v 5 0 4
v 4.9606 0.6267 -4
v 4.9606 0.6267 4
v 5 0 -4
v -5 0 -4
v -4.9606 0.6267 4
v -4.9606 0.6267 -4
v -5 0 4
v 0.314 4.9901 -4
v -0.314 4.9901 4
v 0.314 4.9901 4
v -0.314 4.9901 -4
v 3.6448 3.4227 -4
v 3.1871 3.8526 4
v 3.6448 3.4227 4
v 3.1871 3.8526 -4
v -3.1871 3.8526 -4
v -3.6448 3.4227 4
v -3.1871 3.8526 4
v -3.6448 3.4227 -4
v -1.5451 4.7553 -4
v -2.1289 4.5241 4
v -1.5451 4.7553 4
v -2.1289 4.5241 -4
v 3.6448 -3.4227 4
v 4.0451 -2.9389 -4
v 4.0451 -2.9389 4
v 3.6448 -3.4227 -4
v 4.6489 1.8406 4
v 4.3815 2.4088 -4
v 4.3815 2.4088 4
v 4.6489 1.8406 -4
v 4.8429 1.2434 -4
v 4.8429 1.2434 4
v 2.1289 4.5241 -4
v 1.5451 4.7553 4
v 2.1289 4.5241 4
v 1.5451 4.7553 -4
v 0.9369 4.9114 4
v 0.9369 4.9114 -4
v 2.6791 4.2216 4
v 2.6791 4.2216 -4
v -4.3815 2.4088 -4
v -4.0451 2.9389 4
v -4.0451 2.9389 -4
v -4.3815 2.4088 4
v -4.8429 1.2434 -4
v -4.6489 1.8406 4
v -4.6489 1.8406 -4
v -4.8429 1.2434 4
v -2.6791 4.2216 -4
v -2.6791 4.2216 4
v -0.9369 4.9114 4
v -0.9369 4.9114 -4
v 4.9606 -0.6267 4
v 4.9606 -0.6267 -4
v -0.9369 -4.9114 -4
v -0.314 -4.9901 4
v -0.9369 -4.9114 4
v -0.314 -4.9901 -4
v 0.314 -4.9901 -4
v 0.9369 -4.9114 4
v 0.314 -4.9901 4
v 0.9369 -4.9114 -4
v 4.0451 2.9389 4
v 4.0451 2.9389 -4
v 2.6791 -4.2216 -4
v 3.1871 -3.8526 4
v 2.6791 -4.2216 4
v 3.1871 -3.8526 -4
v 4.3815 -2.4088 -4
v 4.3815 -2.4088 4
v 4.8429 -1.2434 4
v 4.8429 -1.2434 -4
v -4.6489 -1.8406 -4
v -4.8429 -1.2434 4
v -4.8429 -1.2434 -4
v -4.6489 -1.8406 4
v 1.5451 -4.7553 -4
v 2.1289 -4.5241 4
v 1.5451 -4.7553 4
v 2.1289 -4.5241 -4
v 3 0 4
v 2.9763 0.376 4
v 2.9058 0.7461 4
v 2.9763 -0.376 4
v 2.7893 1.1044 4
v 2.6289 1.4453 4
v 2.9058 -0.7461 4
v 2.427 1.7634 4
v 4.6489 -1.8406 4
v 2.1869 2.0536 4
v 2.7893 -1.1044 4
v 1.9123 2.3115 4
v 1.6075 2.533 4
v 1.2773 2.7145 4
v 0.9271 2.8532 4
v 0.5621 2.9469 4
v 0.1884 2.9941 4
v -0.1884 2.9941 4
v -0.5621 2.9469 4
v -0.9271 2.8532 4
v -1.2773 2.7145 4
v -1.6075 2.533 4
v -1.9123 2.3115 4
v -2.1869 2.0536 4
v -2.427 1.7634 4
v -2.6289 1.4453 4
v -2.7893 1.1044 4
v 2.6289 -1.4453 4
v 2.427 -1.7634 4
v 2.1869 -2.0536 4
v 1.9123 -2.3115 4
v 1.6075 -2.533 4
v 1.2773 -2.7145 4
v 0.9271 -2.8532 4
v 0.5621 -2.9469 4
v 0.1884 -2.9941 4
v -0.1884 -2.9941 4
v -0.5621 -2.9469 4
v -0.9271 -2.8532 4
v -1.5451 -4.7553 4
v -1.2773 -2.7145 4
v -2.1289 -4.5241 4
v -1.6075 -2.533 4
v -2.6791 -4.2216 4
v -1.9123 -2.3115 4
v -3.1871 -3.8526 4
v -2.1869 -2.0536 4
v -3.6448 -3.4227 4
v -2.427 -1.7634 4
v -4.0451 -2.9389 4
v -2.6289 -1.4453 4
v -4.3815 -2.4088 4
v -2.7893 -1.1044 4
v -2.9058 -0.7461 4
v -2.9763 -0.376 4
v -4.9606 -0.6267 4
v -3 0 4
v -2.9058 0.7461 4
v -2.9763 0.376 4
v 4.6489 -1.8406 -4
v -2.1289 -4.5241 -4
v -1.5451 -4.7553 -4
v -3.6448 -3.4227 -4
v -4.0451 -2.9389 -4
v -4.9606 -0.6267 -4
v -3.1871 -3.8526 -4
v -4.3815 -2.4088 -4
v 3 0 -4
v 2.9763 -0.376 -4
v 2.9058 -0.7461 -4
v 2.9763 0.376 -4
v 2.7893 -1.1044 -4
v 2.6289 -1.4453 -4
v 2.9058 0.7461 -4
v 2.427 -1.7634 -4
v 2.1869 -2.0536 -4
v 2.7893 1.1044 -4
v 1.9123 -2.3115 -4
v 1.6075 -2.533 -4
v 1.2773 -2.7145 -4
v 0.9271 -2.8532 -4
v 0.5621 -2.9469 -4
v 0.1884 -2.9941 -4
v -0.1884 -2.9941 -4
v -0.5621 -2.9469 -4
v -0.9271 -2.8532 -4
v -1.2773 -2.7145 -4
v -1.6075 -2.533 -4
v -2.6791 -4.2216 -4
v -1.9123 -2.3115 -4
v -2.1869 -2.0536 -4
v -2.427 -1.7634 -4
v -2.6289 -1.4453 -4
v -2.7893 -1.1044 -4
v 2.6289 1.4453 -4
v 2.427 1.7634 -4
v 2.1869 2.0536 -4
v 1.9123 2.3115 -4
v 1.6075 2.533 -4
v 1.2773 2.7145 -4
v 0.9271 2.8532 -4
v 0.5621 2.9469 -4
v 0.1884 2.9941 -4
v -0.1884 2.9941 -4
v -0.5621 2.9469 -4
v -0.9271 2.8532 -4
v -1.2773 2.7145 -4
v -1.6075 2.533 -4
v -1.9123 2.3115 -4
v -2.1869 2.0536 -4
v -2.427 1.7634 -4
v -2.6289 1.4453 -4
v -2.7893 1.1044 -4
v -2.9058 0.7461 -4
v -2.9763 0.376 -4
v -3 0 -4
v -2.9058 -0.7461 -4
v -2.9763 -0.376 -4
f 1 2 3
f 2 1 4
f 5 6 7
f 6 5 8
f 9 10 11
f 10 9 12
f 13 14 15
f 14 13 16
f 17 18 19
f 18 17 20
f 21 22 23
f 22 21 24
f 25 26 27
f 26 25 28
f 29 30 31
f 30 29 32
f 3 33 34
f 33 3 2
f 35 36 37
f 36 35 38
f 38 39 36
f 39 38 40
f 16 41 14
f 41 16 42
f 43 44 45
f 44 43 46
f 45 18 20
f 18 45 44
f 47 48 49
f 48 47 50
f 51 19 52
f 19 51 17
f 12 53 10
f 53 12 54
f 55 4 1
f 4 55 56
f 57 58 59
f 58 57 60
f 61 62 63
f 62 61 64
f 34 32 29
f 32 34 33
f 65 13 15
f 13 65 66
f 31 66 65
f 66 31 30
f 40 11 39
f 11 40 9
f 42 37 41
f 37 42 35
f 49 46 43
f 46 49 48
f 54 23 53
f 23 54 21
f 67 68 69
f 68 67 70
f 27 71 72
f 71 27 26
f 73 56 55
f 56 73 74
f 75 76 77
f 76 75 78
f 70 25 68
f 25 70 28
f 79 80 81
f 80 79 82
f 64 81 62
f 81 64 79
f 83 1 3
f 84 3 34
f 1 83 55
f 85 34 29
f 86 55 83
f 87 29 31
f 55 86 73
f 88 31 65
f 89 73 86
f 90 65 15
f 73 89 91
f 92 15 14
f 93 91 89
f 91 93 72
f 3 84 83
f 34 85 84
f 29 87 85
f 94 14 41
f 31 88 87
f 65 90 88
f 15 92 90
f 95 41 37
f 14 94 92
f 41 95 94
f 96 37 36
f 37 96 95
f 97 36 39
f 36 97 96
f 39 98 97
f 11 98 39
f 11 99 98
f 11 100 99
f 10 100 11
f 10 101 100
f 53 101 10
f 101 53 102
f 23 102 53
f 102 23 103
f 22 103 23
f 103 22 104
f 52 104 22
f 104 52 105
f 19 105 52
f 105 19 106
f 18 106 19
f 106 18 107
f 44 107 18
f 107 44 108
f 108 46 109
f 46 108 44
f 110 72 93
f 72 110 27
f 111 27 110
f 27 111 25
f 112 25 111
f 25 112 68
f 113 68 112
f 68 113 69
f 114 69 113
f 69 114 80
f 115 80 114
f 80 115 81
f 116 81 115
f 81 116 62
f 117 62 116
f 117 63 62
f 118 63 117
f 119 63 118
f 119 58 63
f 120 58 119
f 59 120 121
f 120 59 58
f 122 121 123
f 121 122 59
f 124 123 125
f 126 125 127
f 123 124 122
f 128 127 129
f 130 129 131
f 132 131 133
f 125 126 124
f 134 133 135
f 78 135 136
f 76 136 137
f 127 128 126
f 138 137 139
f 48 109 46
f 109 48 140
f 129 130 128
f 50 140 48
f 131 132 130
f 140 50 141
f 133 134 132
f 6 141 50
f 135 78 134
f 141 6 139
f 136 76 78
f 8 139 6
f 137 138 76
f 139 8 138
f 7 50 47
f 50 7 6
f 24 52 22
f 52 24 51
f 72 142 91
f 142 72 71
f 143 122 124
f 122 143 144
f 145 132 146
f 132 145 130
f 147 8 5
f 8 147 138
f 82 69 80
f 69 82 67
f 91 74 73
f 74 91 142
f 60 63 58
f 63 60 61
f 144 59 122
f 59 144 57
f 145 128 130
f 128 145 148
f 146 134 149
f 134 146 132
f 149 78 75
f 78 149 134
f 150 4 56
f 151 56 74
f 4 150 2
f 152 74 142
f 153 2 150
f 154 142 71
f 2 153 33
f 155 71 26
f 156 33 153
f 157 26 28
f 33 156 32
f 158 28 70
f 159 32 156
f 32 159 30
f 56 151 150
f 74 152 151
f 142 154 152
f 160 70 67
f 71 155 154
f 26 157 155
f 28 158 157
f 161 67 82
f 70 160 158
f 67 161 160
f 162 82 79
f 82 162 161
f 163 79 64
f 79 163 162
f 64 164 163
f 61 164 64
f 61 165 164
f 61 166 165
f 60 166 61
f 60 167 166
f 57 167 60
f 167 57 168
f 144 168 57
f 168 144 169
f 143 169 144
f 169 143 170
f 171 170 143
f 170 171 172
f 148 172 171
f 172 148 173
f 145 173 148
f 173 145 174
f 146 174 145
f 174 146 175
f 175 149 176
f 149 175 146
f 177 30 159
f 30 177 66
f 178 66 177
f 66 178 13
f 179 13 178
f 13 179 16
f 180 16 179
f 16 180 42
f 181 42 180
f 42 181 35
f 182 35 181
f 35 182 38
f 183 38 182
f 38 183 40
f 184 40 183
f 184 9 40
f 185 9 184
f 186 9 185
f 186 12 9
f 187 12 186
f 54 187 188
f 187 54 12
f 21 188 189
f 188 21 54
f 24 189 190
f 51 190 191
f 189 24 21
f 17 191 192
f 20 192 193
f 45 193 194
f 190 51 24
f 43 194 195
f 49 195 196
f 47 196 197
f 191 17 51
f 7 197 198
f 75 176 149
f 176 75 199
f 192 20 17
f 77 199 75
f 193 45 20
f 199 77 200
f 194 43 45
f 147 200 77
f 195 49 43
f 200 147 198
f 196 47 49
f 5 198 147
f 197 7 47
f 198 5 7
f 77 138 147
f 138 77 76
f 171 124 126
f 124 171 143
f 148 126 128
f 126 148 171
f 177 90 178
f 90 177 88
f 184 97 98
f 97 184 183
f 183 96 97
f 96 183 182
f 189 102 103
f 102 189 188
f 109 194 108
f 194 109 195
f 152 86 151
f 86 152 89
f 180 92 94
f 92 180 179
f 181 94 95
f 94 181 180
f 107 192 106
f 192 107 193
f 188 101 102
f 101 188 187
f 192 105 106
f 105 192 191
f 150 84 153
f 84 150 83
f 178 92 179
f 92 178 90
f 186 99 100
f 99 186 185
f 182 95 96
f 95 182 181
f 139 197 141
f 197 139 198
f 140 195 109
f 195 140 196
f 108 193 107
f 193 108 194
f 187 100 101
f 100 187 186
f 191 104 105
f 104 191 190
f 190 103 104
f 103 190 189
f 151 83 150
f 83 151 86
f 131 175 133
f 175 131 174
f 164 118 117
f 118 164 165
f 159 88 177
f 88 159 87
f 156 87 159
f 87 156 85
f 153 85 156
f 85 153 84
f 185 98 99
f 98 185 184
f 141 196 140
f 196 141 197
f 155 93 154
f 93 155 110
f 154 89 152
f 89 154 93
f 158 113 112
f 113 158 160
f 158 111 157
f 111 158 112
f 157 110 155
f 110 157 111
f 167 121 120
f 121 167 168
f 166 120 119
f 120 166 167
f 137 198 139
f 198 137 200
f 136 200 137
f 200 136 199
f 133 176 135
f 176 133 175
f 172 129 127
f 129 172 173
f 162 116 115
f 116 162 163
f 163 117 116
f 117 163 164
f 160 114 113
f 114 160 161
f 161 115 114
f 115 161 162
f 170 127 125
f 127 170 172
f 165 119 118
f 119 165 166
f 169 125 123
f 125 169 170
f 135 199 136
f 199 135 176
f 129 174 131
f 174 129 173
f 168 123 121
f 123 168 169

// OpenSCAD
$fn = 50;


difference() {
	union() {
		translate(v = [0, 0, -4.0000000000]) {
			cylinder(h = 8, r = 5.0000000000);
		}
	}
	union() {
		translate(v = [0, 0, -100.0000000000]) {
			cylinder(h = 200, r = 3.0000000000);
		}
	}
}
